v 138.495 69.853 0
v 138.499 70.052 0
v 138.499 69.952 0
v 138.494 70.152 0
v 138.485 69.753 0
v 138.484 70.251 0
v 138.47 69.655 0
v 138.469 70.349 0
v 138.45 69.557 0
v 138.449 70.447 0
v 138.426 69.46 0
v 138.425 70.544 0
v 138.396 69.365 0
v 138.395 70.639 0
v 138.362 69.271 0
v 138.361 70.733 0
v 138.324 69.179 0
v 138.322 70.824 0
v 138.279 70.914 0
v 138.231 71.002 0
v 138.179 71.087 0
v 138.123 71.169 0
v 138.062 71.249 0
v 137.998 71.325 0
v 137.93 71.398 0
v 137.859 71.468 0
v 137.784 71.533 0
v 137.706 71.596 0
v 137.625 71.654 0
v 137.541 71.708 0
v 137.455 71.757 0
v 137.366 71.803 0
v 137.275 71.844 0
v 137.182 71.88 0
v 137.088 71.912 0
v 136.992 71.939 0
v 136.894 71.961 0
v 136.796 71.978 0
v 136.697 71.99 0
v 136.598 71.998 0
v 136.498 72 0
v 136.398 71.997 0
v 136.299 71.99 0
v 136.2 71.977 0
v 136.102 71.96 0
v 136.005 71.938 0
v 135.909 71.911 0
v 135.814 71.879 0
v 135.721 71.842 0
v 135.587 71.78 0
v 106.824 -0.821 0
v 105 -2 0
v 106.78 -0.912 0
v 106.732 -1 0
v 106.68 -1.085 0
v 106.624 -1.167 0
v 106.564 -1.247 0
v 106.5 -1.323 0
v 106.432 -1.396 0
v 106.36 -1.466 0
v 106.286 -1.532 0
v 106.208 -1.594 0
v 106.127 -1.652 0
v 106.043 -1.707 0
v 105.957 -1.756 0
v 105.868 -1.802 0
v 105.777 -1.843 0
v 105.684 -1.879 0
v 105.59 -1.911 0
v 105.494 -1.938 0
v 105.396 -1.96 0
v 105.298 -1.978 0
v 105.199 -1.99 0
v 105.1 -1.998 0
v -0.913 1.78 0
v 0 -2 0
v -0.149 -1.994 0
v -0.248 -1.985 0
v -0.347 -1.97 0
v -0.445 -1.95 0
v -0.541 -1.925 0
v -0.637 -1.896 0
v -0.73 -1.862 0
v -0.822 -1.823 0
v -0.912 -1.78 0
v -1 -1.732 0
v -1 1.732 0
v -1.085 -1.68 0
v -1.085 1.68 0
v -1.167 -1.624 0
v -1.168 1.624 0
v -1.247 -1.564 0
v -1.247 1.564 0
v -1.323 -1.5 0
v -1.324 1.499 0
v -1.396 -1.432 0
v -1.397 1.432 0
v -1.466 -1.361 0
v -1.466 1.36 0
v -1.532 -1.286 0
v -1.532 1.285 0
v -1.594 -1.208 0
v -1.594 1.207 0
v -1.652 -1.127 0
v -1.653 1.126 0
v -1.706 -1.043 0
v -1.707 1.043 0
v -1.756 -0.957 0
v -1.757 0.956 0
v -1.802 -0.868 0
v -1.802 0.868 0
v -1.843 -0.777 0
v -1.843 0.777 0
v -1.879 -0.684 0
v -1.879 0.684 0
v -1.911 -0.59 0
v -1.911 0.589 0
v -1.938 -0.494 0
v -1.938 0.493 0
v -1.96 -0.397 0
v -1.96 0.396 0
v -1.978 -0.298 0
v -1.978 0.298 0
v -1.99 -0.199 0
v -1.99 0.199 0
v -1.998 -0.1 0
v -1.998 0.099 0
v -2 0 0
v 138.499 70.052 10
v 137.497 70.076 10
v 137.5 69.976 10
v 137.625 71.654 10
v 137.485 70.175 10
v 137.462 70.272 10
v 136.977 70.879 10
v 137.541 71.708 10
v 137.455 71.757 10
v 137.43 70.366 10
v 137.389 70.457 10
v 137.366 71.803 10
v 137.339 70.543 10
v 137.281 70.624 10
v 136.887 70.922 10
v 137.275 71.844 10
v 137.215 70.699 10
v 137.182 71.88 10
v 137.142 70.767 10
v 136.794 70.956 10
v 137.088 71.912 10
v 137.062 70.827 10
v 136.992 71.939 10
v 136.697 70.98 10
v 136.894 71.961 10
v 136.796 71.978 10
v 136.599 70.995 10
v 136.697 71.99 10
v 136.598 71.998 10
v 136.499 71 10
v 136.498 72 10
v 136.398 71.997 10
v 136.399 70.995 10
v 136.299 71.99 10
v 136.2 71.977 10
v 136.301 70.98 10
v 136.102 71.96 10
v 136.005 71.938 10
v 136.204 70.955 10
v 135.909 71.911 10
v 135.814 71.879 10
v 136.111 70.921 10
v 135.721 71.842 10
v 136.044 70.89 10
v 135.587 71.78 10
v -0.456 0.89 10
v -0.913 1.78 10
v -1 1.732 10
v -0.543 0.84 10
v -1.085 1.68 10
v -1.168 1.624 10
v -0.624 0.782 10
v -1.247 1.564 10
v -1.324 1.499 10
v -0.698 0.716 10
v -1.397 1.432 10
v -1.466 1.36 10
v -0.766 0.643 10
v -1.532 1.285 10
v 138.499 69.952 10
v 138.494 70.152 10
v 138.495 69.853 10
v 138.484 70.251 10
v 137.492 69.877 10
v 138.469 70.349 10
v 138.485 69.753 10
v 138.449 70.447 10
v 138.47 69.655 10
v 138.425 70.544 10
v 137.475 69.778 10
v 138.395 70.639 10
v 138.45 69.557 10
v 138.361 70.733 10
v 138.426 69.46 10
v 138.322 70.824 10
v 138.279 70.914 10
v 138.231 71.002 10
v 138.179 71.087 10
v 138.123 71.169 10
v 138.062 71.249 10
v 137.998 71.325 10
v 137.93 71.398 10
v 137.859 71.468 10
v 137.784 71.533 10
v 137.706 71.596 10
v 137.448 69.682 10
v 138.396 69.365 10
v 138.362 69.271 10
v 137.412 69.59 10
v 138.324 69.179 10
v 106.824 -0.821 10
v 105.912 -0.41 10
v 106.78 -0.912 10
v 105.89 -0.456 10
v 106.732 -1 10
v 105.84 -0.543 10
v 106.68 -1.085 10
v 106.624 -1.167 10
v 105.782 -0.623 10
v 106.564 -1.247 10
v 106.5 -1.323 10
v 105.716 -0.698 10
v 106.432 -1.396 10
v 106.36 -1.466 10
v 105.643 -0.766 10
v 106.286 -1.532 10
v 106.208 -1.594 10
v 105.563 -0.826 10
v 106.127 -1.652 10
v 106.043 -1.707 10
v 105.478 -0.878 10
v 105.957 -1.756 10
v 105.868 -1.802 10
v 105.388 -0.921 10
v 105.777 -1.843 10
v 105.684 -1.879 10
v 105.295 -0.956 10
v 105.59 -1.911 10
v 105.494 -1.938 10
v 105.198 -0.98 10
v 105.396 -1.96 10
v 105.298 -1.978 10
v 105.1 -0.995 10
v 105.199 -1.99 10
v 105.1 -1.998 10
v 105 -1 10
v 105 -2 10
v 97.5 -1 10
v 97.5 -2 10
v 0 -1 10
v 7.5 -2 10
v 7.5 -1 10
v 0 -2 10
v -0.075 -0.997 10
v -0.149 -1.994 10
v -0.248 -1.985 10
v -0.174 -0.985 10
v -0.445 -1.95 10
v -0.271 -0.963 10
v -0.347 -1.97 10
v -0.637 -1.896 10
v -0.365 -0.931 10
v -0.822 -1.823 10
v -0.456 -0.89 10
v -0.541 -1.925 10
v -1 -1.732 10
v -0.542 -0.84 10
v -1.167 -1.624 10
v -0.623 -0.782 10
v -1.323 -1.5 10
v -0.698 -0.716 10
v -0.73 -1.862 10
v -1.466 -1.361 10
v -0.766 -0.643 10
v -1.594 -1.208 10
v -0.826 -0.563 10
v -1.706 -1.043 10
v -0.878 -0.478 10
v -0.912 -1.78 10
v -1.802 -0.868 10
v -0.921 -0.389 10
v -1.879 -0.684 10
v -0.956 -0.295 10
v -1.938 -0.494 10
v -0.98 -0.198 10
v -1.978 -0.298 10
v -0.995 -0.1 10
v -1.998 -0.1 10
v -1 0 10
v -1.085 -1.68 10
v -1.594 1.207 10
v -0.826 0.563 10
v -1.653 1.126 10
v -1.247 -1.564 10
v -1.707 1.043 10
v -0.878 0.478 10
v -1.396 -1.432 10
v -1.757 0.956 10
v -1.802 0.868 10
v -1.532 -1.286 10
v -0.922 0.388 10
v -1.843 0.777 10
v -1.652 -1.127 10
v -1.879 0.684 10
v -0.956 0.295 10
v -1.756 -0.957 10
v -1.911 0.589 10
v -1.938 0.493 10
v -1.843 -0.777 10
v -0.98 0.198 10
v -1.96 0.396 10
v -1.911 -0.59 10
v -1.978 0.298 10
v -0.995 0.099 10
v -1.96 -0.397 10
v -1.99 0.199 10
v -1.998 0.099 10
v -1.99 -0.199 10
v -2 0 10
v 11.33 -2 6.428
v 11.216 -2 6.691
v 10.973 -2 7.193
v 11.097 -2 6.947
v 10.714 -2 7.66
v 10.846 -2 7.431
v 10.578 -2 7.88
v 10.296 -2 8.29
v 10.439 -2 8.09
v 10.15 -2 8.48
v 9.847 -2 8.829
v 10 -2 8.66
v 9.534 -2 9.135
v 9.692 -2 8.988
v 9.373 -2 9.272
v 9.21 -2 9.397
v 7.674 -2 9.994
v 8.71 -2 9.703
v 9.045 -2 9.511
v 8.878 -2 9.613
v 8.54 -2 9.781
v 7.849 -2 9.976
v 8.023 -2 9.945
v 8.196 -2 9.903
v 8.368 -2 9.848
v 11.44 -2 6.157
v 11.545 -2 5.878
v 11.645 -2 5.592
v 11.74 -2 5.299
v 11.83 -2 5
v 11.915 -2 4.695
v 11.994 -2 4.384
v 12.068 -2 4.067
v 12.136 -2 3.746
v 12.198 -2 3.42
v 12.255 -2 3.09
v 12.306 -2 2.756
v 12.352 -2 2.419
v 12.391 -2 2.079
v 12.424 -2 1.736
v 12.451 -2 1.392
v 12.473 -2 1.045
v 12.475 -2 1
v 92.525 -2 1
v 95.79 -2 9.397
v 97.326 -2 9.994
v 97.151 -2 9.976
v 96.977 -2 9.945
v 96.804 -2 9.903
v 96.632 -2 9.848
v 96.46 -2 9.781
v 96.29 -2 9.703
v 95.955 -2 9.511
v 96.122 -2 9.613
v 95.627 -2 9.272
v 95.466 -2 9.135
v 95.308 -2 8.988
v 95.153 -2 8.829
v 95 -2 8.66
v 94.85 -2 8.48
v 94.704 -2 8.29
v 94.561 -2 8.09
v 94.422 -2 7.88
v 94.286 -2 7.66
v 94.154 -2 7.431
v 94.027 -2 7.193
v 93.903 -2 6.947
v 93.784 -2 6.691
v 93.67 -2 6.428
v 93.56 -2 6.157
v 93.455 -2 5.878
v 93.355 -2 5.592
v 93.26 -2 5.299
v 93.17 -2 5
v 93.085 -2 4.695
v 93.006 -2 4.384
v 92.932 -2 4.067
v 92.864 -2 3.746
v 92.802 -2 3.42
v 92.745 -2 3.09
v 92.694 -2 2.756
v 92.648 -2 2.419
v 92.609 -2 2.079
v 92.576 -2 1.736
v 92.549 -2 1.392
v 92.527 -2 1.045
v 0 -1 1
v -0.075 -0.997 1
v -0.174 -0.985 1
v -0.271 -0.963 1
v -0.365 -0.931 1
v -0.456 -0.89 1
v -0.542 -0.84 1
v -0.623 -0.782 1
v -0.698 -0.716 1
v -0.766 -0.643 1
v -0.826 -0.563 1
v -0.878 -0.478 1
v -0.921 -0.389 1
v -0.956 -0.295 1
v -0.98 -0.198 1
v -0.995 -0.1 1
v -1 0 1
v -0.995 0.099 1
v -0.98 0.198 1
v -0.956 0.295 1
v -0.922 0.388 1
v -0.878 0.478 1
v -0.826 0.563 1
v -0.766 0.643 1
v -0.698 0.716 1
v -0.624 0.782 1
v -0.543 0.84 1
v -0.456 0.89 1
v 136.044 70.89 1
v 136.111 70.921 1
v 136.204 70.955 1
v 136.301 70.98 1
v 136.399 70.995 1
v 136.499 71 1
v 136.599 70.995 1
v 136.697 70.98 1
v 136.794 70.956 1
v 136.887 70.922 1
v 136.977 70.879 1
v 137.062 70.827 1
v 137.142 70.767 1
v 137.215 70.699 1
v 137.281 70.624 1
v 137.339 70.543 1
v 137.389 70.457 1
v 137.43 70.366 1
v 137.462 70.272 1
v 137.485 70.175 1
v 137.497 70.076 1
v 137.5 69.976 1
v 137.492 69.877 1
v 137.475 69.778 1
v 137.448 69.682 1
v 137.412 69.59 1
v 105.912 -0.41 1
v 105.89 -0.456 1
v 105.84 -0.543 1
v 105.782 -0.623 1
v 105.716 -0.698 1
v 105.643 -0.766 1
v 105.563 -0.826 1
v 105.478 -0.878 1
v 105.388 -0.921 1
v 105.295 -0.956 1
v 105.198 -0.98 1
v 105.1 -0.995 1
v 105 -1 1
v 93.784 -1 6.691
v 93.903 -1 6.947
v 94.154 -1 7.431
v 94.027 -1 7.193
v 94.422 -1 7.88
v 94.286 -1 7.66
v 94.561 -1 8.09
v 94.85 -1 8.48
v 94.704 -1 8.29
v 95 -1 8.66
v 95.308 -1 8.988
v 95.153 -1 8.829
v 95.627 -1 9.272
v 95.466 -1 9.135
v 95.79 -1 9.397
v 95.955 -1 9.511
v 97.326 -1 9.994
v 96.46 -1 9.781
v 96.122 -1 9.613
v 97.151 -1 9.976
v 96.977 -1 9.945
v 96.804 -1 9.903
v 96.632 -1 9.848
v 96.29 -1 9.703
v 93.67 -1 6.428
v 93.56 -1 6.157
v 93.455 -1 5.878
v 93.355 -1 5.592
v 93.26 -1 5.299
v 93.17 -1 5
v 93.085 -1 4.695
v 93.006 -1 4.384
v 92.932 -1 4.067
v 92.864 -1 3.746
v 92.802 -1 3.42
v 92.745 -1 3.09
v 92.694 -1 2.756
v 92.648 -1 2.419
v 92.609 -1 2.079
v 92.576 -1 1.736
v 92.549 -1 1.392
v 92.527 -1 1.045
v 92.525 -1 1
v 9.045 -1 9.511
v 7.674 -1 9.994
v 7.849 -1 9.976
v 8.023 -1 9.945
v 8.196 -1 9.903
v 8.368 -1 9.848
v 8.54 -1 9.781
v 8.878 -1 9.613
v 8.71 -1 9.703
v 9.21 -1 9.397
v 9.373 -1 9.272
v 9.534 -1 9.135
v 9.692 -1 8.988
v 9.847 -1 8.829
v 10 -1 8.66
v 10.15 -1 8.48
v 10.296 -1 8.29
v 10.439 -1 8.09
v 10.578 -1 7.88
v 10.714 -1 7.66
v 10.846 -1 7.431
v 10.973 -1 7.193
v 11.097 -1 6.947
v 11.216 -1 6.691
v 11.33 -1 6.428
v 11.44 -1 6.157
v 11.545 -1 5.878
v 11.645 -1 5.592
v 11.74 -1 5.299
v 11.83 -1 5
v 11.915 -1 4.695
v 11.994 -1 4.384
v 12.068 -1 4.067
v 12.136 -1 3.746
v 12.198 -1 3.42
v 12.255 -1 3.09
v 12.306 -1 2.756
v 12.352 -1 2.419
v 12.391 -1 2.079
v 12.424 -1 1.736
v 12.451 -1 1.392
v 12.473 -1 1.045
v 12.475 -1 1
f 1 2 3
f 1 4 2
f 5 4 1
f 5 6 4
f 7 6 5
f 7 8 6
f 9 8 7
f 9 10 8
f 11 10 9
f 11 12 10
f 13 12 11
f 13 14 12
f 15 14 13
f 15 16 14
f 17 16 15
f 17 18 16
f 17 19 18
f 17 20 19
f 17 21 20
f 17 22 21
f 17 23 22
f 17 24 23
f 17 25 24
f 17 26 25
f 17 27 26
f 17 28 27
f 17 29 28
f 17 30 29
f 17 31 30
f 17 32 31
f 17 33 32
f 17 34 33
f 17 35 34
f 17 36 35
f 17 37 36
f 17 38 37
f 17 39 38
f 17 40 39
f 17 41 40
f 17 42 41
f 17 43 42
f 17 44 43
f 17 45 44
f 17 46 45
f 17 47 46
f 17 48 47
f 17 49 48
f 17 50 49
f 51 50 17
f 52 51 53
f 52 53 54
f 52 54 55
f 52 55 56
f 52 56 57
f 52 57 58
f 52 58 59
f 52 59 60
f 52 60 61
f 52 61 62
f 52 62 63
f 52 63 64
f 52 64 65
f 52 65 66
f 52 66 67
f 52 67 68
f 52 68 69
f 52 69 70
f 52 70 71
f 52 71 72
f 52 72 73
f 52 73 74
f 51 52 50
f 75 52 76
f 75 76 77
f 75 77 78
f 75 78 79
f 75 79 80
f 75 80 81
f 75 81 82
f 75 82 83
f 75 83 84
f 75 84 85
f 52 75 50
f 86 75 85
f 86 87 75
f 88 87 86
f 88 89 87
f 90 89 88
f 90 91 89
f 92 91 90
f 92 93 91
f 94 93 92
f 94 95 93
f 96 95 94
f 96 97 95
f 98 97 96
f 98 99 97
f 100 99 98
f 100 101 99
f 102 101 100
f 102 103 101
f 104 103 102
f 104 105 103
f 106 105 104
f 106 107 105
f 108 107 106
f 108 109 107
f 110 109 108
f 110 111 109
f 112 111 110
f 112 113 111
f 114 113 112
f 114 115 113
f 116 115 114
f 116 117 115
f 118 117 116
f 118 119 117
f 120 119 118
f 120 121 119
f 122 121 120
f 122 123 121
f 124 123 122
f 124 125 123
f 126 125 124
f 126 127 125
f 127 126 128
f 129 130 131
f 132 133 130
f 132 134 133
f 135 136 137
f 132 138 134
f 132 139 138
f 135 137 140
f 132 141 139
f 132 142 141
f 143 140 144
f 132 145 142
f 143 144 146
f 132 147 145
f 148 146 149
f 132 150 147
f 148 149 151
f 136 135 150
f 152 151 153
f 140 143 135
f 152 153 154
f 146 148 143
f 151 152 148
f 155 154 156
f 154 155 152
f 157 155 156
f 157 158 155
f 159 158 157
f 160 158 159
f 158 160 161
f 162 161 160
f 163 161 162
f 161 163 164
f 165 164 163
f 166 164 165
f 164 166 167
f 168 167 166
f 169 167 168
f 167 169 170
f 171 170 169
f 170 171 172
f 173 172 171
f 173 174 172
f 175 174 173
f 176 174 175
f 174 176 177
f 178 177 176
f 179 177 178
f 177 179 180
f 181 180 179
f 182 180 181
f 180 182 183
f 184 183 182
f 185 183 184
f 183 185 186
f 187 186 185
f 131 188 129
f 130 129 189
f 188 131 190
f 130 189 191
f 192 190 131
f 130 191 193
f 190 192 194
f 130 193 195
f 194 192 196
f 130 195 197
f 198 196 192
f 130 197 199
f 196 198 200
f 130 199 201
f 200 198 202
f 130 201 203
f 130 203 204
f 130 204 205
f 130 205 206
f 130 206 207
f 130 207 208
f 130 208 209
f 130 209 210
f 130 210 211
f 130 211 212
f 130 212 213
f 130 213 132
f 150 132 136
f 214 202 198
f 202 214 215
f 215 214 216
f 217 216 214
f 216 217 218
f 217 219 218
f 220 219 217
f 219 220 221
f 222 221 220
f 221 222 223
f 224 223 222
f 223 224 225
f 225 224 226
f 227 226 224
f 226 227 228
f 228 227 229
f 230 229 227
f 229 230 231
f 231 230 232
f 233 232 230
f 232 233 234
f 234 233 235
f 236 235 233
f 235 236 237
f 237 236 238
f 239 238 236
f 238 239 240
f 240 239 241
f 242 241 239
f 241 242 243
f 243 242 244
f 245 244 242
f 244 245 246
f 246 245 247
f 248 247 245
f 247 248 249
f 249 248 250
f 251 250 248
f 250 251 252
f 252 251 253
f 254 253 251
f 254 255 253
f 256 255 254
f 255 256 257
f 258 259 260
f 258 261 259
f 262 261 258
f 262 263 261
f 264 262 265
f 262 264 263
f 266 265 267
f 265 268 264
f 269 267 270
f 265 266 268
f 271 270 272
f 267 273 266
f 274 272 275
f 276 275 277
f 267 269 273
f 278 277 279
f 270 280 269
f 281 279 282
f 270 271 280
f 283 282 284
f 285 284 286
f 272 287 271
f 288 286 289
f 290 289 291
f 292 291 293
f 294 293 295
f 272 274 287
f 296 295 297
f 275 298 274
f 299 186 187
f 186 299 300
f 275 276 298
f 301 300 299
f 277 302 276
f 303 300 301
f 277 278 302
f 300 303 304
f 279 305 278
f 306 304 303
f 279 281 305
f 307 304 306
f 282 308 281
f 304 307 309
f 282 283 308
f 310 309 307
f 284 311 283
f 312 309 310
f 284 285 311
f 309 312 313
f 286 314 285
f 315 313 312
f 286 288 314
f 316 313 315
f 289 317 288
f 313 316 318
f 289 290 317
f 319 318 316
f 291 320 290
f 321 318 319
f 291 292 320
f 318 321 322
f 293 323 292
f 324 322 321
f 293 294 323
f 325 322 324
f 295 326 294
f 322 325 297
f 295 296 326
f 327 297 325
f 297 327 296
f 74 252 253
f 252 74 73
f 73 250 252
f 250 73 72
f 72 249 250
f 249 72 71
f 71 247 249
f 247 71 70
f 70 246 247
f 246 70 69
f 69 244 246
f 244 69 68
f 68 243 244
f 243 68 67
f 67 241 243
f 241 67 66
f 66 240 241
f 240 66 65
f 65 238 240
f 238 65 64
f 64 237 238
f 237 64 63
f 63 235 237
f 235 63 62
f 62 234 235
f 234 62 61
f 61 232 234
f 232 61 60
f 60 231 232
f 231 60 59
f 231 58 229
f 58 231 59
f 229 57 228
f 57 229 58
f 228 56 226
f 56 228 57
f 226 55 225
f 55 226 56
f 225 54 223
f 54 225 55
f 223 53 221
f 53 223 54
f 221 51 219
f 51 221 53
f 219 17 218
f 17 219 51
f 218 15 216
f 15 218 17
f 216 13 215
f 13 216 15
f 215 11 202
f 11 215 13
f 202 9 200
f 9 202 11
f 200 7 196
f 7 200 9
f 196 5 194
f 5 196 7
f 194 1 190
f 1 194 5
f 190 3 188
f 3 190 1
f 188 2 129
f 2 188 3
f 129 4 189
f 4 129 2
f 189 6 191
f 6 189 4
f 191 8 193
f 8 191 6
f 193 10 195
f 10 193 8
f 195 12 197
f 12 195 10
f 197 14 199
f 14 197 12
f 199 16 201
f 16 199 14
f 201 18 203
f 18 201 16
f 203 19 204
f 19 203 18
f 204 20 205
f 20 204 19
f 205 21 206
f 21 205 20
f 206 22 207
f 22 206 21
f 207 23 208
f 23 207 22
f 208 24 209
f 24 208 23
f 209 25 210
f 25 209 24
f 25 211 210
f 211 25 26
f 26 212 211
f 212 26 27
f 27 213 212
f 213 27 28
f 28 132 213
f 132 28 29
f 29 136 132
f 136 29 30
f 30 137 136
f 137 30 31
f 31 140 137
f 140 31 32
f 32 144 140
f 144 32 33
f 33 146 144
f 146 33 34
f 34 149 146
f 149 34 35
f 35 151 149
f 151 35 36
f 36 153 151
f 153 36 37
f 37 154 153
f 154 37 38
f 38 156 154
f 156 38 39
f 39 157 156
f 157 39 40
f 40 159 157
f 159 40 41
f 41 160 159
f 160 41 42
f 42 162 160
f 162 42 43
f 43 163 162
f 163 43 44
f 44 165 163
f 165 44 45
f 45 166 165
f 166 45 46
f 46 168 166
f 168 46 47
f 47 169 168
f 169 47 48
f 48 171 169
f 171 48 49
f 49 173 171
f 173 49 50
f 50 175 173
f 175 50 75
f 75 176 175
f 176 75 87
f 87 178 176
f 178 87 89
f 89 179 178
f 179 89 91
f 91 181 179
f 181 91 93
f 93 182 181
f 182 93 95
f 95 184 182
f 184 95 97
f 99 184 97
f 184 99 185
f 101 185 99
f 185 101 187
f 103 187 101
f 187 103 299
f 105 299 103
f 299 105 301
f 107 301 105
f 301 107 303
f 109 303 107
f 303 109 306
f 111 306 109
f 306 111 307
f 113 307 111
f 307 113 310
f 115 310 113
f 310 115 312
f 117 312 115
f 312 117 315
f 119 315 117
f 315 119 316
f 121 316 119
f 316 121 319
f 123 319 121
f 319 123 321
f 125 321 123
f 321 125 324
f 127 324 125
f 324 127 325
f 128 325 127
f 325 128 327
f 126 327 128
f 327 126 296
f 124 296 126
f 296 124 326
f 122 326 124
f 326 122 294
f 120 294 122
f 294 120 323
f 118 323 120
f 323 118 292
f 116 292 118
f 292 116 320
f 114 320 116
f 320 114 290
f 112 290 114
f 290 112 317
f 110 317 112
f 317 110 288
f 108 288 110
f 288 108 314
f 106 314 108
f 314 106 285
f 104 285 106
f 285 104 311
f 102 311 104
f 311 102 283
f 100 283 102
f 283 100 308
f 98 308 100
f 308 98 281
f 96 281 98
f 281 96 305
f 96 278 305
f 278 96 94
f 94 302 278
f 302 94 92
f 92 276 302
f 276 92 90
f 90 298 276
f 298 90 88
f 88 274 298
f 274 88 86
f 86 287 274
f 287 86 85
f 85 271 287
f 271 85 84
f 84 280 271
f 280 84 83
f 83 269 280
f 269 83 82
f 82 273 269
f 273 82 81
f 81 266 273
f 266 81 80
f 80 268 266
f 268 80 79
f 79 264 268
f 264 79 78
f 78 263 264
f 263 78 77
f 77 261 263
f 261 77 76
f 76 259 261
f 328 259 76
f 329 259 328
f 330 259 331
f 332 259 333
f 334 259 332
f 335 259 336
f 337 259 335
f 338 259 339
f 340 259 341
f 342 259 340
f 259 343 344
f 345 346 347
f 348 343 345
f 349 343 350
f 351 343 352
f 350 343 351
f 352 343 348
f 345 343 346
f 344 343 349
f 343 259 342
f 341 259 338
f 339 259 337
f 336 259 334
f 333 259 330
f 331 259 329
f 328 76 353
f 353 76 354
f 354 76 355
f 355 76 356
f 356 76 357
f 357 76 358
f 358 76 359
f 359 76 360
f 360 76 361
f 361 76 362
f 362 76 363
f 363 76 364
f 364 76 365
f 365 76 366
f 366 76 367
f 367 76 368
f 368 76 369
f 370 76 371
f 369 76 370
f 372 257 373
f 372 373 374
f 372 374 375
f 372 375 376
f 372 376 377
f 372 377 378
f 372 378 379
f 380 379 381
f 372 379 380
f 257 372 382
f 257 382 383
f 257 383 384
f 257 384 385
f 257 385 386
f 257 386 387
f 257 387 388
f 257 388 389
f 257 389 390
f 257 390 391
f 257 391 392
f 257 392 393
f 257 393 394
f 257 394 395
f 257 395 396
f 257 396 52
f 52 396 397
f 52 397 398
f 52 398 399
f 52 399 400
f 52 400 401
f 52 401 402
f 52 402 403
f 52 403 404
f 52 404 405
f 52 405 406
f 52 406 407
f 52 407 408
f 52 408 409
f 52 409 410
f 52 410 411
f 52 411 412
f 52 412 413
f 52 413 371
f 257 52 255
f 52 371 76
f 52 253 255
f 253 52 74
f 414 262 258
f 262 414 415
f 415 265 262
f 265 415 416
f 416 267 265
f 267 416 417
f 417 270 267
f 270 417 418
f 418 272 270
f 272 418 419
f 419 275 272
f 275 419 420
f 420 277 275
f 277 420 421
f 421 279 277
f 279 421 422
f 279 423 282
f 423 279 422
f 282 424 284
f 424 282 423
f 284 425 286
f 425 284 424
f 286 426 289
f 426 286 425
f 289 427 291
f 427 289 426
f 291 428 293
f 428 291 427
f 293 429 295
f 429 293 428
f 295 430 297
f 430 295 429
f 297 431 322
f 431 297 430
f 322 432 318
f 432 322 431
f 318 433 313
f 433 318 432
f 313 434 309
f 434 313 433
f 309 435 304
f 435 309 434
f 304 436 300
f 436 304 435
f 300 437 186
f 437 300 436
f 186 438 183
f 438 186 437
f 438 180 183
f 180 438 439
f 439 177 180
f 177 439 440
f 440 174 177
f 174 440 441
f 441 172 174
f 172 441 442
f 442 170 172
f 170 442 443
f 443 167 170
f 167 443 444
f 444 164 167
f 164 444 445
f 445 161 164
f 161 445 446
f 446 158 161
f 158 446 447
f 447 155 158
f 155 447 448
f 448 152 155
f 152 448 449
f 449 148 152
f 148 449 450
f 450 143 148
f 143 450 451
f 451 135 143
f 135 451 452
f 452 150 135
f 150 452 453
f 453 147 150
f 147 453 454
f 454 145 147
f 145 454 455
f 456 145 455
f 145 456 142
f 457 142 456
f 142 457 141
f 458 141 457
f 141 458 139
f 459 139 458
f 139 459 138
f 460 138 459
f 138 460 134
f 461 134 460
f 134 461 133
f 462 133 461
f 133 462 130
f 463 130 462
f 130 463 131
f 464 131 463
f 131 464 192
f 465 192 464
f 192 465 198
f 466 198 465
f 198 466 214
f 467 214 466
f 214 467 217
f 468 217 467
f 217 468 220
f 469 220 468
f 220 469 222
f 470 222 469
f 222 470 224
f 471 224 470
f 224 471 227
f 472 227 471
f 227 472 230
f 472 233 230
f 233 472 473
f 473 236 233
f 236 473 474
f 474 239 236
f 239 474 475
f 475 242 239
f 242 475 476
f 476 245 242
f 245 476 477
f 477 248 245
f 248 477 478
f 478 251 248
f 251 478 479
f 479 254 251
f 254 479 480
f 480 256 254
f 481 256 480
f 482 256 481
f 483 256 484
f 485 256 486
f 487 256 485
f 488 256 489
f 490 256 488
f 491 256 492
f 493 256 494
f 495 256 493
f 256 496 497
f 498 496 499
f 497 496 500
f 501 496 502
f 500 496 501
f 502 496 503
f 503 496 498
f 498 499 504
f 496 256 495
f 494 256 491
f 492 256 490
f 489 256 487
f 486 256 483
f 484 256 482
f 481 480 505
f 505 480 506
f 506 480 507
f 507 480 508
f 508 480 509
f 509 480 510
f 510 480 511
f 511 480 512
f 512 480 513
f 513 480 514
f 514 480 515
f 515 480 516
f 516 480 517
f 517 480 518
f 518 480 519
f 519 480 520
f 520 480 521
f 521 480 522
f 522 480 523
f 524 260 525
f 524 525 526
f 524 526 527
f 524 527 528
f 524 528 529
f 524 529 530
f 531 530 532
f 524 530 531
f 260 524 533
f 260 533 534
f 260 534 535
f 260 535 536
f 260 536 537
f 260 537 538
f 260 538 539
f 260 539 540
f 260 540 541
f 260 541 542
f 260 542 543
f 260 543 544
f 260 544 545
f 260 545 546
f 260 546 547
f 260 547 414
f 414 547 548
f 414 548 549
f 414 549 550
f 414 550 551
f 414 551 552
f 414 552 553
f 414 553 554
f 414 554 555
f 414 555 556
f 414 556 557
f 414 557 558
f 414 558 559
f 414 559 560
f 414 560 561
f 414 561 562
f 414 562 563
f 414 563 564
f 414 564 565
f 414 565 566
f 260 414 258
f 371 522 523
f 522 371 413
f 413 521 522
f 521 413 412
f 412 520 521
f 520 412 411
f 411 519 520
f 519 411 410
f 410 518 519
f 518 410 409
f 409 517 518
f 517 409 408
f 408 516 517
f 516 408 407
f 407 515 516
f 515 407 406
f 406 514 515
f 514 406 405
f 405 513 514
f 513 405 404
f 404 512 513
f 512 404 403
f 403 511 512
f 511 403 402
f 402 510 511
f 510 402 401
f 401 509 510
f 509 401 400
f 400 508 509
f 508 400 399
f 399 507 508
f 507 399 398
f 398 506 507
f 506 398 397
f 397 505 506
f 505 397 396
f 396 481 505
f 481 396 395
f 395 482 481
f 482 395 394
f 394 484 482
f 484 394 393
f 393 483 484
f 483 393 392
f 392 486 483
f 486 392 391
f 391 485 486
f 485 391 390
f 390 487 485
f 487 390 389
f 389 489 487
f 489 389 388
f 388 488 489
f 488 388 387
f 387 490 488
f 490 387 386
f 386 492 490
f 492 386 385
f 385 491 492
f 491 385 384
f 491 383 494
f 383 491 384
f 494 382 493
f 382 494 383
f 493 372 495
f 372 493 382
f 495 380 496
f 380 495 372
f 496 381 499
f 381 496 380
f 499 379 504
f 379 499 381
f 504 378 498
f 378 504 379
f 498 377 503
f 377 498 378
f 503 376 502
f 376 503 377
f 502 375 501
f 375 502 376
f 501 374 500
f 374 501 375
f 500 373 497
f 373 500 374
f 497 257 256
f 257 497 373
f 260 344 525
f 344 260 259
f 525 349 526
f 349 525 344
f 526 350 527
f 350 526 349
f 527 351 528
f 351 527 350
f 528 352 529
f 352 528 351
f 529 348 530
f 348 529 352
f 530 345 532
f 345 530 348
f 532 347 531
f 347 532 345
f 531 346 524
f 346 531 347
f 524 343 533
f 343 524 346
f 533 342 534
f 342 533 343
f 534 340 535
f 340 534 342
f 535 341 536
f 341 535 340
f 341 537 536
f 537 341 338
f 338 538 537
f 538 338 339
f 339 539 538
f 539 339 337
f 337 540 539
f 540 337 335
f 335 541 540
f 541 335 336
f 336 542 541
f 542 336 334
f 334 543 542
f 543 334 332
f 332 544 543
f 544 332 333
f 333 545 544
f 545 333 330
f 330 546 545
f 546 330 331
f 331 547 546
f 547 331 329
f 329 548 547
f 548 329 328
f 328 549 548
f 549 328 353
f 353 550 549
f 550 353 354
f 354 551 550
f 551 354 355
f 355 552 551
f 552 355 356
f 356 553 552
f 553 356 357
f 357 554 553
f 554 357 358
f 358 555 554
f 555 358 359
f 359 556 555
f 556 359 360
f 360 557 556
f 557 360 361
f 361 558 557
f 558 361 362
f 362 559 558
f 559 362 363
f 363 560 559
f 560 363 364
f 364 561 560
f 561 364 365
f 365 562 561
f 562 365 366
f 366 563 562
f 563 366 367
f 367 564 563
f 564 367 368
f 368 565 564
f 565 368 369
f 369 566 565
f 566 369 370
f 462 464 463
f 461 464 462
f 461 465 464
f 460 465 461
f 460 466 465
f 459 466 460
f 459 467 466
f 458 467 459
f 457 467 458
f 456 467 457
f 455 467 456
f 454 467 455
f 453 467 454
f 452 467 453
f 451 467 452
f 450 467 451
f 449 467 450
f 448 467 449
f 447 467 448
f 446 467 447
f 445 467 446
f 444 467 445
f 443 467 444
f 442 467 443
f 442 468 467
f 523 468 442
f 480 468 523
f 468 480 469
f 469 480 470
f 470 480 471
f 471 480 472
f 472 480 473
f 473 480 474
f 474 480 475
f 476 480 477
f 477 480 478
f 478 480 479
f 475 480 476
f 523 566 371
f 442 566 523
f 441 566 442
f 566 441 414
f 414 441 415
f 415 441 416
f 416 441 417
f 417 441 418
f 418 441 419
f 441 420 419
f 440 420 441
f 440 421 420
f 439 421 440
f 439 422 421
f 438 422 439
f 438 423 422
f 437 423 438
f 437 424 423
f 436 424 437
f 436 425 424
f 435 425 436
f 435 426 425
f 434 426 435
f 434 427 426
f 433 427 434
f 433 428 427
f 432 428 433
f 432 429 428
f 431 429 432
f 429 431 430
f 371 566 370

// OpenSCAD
// file TriangleBox.scad
// This model creates a rectangular open box that holds together two
// TriangleArea triangles. 
// (c) 2020 Rich Cameron, CC-BY
// measurements in mm

base = 105;
height = 70;
thickness = 20;

top = base * 1.3;

$fs = .1;
$fa = 2;

size = [base, height];
wall = 1;
clearance = 1;

linear_extrude(1) offset(clearance + wall) polygon([[0, 0], [base, 0], [top, height]]);;

difference() {
	linear_extrude(10, convexity = 5) difference() {
		offset(wall + clearance) polygon([[0, 0], [base, 0], [top, height]]);;
		offset(clearance) polygon([[0, 0], [base, 0], [top, height]]);;
	}
	translate([base / 2, 0, 0]) rotate([90, 0, 0]) linear_extrude(100) difference() {
		square(size[0] - 15, center = true);
		for(i = [0, 1]) mirror([i, 0, 0]) translate([(size[0] - 15) / 2, 0, 0]) scale([.5, 1, 1]) circle(10);
	}
}
